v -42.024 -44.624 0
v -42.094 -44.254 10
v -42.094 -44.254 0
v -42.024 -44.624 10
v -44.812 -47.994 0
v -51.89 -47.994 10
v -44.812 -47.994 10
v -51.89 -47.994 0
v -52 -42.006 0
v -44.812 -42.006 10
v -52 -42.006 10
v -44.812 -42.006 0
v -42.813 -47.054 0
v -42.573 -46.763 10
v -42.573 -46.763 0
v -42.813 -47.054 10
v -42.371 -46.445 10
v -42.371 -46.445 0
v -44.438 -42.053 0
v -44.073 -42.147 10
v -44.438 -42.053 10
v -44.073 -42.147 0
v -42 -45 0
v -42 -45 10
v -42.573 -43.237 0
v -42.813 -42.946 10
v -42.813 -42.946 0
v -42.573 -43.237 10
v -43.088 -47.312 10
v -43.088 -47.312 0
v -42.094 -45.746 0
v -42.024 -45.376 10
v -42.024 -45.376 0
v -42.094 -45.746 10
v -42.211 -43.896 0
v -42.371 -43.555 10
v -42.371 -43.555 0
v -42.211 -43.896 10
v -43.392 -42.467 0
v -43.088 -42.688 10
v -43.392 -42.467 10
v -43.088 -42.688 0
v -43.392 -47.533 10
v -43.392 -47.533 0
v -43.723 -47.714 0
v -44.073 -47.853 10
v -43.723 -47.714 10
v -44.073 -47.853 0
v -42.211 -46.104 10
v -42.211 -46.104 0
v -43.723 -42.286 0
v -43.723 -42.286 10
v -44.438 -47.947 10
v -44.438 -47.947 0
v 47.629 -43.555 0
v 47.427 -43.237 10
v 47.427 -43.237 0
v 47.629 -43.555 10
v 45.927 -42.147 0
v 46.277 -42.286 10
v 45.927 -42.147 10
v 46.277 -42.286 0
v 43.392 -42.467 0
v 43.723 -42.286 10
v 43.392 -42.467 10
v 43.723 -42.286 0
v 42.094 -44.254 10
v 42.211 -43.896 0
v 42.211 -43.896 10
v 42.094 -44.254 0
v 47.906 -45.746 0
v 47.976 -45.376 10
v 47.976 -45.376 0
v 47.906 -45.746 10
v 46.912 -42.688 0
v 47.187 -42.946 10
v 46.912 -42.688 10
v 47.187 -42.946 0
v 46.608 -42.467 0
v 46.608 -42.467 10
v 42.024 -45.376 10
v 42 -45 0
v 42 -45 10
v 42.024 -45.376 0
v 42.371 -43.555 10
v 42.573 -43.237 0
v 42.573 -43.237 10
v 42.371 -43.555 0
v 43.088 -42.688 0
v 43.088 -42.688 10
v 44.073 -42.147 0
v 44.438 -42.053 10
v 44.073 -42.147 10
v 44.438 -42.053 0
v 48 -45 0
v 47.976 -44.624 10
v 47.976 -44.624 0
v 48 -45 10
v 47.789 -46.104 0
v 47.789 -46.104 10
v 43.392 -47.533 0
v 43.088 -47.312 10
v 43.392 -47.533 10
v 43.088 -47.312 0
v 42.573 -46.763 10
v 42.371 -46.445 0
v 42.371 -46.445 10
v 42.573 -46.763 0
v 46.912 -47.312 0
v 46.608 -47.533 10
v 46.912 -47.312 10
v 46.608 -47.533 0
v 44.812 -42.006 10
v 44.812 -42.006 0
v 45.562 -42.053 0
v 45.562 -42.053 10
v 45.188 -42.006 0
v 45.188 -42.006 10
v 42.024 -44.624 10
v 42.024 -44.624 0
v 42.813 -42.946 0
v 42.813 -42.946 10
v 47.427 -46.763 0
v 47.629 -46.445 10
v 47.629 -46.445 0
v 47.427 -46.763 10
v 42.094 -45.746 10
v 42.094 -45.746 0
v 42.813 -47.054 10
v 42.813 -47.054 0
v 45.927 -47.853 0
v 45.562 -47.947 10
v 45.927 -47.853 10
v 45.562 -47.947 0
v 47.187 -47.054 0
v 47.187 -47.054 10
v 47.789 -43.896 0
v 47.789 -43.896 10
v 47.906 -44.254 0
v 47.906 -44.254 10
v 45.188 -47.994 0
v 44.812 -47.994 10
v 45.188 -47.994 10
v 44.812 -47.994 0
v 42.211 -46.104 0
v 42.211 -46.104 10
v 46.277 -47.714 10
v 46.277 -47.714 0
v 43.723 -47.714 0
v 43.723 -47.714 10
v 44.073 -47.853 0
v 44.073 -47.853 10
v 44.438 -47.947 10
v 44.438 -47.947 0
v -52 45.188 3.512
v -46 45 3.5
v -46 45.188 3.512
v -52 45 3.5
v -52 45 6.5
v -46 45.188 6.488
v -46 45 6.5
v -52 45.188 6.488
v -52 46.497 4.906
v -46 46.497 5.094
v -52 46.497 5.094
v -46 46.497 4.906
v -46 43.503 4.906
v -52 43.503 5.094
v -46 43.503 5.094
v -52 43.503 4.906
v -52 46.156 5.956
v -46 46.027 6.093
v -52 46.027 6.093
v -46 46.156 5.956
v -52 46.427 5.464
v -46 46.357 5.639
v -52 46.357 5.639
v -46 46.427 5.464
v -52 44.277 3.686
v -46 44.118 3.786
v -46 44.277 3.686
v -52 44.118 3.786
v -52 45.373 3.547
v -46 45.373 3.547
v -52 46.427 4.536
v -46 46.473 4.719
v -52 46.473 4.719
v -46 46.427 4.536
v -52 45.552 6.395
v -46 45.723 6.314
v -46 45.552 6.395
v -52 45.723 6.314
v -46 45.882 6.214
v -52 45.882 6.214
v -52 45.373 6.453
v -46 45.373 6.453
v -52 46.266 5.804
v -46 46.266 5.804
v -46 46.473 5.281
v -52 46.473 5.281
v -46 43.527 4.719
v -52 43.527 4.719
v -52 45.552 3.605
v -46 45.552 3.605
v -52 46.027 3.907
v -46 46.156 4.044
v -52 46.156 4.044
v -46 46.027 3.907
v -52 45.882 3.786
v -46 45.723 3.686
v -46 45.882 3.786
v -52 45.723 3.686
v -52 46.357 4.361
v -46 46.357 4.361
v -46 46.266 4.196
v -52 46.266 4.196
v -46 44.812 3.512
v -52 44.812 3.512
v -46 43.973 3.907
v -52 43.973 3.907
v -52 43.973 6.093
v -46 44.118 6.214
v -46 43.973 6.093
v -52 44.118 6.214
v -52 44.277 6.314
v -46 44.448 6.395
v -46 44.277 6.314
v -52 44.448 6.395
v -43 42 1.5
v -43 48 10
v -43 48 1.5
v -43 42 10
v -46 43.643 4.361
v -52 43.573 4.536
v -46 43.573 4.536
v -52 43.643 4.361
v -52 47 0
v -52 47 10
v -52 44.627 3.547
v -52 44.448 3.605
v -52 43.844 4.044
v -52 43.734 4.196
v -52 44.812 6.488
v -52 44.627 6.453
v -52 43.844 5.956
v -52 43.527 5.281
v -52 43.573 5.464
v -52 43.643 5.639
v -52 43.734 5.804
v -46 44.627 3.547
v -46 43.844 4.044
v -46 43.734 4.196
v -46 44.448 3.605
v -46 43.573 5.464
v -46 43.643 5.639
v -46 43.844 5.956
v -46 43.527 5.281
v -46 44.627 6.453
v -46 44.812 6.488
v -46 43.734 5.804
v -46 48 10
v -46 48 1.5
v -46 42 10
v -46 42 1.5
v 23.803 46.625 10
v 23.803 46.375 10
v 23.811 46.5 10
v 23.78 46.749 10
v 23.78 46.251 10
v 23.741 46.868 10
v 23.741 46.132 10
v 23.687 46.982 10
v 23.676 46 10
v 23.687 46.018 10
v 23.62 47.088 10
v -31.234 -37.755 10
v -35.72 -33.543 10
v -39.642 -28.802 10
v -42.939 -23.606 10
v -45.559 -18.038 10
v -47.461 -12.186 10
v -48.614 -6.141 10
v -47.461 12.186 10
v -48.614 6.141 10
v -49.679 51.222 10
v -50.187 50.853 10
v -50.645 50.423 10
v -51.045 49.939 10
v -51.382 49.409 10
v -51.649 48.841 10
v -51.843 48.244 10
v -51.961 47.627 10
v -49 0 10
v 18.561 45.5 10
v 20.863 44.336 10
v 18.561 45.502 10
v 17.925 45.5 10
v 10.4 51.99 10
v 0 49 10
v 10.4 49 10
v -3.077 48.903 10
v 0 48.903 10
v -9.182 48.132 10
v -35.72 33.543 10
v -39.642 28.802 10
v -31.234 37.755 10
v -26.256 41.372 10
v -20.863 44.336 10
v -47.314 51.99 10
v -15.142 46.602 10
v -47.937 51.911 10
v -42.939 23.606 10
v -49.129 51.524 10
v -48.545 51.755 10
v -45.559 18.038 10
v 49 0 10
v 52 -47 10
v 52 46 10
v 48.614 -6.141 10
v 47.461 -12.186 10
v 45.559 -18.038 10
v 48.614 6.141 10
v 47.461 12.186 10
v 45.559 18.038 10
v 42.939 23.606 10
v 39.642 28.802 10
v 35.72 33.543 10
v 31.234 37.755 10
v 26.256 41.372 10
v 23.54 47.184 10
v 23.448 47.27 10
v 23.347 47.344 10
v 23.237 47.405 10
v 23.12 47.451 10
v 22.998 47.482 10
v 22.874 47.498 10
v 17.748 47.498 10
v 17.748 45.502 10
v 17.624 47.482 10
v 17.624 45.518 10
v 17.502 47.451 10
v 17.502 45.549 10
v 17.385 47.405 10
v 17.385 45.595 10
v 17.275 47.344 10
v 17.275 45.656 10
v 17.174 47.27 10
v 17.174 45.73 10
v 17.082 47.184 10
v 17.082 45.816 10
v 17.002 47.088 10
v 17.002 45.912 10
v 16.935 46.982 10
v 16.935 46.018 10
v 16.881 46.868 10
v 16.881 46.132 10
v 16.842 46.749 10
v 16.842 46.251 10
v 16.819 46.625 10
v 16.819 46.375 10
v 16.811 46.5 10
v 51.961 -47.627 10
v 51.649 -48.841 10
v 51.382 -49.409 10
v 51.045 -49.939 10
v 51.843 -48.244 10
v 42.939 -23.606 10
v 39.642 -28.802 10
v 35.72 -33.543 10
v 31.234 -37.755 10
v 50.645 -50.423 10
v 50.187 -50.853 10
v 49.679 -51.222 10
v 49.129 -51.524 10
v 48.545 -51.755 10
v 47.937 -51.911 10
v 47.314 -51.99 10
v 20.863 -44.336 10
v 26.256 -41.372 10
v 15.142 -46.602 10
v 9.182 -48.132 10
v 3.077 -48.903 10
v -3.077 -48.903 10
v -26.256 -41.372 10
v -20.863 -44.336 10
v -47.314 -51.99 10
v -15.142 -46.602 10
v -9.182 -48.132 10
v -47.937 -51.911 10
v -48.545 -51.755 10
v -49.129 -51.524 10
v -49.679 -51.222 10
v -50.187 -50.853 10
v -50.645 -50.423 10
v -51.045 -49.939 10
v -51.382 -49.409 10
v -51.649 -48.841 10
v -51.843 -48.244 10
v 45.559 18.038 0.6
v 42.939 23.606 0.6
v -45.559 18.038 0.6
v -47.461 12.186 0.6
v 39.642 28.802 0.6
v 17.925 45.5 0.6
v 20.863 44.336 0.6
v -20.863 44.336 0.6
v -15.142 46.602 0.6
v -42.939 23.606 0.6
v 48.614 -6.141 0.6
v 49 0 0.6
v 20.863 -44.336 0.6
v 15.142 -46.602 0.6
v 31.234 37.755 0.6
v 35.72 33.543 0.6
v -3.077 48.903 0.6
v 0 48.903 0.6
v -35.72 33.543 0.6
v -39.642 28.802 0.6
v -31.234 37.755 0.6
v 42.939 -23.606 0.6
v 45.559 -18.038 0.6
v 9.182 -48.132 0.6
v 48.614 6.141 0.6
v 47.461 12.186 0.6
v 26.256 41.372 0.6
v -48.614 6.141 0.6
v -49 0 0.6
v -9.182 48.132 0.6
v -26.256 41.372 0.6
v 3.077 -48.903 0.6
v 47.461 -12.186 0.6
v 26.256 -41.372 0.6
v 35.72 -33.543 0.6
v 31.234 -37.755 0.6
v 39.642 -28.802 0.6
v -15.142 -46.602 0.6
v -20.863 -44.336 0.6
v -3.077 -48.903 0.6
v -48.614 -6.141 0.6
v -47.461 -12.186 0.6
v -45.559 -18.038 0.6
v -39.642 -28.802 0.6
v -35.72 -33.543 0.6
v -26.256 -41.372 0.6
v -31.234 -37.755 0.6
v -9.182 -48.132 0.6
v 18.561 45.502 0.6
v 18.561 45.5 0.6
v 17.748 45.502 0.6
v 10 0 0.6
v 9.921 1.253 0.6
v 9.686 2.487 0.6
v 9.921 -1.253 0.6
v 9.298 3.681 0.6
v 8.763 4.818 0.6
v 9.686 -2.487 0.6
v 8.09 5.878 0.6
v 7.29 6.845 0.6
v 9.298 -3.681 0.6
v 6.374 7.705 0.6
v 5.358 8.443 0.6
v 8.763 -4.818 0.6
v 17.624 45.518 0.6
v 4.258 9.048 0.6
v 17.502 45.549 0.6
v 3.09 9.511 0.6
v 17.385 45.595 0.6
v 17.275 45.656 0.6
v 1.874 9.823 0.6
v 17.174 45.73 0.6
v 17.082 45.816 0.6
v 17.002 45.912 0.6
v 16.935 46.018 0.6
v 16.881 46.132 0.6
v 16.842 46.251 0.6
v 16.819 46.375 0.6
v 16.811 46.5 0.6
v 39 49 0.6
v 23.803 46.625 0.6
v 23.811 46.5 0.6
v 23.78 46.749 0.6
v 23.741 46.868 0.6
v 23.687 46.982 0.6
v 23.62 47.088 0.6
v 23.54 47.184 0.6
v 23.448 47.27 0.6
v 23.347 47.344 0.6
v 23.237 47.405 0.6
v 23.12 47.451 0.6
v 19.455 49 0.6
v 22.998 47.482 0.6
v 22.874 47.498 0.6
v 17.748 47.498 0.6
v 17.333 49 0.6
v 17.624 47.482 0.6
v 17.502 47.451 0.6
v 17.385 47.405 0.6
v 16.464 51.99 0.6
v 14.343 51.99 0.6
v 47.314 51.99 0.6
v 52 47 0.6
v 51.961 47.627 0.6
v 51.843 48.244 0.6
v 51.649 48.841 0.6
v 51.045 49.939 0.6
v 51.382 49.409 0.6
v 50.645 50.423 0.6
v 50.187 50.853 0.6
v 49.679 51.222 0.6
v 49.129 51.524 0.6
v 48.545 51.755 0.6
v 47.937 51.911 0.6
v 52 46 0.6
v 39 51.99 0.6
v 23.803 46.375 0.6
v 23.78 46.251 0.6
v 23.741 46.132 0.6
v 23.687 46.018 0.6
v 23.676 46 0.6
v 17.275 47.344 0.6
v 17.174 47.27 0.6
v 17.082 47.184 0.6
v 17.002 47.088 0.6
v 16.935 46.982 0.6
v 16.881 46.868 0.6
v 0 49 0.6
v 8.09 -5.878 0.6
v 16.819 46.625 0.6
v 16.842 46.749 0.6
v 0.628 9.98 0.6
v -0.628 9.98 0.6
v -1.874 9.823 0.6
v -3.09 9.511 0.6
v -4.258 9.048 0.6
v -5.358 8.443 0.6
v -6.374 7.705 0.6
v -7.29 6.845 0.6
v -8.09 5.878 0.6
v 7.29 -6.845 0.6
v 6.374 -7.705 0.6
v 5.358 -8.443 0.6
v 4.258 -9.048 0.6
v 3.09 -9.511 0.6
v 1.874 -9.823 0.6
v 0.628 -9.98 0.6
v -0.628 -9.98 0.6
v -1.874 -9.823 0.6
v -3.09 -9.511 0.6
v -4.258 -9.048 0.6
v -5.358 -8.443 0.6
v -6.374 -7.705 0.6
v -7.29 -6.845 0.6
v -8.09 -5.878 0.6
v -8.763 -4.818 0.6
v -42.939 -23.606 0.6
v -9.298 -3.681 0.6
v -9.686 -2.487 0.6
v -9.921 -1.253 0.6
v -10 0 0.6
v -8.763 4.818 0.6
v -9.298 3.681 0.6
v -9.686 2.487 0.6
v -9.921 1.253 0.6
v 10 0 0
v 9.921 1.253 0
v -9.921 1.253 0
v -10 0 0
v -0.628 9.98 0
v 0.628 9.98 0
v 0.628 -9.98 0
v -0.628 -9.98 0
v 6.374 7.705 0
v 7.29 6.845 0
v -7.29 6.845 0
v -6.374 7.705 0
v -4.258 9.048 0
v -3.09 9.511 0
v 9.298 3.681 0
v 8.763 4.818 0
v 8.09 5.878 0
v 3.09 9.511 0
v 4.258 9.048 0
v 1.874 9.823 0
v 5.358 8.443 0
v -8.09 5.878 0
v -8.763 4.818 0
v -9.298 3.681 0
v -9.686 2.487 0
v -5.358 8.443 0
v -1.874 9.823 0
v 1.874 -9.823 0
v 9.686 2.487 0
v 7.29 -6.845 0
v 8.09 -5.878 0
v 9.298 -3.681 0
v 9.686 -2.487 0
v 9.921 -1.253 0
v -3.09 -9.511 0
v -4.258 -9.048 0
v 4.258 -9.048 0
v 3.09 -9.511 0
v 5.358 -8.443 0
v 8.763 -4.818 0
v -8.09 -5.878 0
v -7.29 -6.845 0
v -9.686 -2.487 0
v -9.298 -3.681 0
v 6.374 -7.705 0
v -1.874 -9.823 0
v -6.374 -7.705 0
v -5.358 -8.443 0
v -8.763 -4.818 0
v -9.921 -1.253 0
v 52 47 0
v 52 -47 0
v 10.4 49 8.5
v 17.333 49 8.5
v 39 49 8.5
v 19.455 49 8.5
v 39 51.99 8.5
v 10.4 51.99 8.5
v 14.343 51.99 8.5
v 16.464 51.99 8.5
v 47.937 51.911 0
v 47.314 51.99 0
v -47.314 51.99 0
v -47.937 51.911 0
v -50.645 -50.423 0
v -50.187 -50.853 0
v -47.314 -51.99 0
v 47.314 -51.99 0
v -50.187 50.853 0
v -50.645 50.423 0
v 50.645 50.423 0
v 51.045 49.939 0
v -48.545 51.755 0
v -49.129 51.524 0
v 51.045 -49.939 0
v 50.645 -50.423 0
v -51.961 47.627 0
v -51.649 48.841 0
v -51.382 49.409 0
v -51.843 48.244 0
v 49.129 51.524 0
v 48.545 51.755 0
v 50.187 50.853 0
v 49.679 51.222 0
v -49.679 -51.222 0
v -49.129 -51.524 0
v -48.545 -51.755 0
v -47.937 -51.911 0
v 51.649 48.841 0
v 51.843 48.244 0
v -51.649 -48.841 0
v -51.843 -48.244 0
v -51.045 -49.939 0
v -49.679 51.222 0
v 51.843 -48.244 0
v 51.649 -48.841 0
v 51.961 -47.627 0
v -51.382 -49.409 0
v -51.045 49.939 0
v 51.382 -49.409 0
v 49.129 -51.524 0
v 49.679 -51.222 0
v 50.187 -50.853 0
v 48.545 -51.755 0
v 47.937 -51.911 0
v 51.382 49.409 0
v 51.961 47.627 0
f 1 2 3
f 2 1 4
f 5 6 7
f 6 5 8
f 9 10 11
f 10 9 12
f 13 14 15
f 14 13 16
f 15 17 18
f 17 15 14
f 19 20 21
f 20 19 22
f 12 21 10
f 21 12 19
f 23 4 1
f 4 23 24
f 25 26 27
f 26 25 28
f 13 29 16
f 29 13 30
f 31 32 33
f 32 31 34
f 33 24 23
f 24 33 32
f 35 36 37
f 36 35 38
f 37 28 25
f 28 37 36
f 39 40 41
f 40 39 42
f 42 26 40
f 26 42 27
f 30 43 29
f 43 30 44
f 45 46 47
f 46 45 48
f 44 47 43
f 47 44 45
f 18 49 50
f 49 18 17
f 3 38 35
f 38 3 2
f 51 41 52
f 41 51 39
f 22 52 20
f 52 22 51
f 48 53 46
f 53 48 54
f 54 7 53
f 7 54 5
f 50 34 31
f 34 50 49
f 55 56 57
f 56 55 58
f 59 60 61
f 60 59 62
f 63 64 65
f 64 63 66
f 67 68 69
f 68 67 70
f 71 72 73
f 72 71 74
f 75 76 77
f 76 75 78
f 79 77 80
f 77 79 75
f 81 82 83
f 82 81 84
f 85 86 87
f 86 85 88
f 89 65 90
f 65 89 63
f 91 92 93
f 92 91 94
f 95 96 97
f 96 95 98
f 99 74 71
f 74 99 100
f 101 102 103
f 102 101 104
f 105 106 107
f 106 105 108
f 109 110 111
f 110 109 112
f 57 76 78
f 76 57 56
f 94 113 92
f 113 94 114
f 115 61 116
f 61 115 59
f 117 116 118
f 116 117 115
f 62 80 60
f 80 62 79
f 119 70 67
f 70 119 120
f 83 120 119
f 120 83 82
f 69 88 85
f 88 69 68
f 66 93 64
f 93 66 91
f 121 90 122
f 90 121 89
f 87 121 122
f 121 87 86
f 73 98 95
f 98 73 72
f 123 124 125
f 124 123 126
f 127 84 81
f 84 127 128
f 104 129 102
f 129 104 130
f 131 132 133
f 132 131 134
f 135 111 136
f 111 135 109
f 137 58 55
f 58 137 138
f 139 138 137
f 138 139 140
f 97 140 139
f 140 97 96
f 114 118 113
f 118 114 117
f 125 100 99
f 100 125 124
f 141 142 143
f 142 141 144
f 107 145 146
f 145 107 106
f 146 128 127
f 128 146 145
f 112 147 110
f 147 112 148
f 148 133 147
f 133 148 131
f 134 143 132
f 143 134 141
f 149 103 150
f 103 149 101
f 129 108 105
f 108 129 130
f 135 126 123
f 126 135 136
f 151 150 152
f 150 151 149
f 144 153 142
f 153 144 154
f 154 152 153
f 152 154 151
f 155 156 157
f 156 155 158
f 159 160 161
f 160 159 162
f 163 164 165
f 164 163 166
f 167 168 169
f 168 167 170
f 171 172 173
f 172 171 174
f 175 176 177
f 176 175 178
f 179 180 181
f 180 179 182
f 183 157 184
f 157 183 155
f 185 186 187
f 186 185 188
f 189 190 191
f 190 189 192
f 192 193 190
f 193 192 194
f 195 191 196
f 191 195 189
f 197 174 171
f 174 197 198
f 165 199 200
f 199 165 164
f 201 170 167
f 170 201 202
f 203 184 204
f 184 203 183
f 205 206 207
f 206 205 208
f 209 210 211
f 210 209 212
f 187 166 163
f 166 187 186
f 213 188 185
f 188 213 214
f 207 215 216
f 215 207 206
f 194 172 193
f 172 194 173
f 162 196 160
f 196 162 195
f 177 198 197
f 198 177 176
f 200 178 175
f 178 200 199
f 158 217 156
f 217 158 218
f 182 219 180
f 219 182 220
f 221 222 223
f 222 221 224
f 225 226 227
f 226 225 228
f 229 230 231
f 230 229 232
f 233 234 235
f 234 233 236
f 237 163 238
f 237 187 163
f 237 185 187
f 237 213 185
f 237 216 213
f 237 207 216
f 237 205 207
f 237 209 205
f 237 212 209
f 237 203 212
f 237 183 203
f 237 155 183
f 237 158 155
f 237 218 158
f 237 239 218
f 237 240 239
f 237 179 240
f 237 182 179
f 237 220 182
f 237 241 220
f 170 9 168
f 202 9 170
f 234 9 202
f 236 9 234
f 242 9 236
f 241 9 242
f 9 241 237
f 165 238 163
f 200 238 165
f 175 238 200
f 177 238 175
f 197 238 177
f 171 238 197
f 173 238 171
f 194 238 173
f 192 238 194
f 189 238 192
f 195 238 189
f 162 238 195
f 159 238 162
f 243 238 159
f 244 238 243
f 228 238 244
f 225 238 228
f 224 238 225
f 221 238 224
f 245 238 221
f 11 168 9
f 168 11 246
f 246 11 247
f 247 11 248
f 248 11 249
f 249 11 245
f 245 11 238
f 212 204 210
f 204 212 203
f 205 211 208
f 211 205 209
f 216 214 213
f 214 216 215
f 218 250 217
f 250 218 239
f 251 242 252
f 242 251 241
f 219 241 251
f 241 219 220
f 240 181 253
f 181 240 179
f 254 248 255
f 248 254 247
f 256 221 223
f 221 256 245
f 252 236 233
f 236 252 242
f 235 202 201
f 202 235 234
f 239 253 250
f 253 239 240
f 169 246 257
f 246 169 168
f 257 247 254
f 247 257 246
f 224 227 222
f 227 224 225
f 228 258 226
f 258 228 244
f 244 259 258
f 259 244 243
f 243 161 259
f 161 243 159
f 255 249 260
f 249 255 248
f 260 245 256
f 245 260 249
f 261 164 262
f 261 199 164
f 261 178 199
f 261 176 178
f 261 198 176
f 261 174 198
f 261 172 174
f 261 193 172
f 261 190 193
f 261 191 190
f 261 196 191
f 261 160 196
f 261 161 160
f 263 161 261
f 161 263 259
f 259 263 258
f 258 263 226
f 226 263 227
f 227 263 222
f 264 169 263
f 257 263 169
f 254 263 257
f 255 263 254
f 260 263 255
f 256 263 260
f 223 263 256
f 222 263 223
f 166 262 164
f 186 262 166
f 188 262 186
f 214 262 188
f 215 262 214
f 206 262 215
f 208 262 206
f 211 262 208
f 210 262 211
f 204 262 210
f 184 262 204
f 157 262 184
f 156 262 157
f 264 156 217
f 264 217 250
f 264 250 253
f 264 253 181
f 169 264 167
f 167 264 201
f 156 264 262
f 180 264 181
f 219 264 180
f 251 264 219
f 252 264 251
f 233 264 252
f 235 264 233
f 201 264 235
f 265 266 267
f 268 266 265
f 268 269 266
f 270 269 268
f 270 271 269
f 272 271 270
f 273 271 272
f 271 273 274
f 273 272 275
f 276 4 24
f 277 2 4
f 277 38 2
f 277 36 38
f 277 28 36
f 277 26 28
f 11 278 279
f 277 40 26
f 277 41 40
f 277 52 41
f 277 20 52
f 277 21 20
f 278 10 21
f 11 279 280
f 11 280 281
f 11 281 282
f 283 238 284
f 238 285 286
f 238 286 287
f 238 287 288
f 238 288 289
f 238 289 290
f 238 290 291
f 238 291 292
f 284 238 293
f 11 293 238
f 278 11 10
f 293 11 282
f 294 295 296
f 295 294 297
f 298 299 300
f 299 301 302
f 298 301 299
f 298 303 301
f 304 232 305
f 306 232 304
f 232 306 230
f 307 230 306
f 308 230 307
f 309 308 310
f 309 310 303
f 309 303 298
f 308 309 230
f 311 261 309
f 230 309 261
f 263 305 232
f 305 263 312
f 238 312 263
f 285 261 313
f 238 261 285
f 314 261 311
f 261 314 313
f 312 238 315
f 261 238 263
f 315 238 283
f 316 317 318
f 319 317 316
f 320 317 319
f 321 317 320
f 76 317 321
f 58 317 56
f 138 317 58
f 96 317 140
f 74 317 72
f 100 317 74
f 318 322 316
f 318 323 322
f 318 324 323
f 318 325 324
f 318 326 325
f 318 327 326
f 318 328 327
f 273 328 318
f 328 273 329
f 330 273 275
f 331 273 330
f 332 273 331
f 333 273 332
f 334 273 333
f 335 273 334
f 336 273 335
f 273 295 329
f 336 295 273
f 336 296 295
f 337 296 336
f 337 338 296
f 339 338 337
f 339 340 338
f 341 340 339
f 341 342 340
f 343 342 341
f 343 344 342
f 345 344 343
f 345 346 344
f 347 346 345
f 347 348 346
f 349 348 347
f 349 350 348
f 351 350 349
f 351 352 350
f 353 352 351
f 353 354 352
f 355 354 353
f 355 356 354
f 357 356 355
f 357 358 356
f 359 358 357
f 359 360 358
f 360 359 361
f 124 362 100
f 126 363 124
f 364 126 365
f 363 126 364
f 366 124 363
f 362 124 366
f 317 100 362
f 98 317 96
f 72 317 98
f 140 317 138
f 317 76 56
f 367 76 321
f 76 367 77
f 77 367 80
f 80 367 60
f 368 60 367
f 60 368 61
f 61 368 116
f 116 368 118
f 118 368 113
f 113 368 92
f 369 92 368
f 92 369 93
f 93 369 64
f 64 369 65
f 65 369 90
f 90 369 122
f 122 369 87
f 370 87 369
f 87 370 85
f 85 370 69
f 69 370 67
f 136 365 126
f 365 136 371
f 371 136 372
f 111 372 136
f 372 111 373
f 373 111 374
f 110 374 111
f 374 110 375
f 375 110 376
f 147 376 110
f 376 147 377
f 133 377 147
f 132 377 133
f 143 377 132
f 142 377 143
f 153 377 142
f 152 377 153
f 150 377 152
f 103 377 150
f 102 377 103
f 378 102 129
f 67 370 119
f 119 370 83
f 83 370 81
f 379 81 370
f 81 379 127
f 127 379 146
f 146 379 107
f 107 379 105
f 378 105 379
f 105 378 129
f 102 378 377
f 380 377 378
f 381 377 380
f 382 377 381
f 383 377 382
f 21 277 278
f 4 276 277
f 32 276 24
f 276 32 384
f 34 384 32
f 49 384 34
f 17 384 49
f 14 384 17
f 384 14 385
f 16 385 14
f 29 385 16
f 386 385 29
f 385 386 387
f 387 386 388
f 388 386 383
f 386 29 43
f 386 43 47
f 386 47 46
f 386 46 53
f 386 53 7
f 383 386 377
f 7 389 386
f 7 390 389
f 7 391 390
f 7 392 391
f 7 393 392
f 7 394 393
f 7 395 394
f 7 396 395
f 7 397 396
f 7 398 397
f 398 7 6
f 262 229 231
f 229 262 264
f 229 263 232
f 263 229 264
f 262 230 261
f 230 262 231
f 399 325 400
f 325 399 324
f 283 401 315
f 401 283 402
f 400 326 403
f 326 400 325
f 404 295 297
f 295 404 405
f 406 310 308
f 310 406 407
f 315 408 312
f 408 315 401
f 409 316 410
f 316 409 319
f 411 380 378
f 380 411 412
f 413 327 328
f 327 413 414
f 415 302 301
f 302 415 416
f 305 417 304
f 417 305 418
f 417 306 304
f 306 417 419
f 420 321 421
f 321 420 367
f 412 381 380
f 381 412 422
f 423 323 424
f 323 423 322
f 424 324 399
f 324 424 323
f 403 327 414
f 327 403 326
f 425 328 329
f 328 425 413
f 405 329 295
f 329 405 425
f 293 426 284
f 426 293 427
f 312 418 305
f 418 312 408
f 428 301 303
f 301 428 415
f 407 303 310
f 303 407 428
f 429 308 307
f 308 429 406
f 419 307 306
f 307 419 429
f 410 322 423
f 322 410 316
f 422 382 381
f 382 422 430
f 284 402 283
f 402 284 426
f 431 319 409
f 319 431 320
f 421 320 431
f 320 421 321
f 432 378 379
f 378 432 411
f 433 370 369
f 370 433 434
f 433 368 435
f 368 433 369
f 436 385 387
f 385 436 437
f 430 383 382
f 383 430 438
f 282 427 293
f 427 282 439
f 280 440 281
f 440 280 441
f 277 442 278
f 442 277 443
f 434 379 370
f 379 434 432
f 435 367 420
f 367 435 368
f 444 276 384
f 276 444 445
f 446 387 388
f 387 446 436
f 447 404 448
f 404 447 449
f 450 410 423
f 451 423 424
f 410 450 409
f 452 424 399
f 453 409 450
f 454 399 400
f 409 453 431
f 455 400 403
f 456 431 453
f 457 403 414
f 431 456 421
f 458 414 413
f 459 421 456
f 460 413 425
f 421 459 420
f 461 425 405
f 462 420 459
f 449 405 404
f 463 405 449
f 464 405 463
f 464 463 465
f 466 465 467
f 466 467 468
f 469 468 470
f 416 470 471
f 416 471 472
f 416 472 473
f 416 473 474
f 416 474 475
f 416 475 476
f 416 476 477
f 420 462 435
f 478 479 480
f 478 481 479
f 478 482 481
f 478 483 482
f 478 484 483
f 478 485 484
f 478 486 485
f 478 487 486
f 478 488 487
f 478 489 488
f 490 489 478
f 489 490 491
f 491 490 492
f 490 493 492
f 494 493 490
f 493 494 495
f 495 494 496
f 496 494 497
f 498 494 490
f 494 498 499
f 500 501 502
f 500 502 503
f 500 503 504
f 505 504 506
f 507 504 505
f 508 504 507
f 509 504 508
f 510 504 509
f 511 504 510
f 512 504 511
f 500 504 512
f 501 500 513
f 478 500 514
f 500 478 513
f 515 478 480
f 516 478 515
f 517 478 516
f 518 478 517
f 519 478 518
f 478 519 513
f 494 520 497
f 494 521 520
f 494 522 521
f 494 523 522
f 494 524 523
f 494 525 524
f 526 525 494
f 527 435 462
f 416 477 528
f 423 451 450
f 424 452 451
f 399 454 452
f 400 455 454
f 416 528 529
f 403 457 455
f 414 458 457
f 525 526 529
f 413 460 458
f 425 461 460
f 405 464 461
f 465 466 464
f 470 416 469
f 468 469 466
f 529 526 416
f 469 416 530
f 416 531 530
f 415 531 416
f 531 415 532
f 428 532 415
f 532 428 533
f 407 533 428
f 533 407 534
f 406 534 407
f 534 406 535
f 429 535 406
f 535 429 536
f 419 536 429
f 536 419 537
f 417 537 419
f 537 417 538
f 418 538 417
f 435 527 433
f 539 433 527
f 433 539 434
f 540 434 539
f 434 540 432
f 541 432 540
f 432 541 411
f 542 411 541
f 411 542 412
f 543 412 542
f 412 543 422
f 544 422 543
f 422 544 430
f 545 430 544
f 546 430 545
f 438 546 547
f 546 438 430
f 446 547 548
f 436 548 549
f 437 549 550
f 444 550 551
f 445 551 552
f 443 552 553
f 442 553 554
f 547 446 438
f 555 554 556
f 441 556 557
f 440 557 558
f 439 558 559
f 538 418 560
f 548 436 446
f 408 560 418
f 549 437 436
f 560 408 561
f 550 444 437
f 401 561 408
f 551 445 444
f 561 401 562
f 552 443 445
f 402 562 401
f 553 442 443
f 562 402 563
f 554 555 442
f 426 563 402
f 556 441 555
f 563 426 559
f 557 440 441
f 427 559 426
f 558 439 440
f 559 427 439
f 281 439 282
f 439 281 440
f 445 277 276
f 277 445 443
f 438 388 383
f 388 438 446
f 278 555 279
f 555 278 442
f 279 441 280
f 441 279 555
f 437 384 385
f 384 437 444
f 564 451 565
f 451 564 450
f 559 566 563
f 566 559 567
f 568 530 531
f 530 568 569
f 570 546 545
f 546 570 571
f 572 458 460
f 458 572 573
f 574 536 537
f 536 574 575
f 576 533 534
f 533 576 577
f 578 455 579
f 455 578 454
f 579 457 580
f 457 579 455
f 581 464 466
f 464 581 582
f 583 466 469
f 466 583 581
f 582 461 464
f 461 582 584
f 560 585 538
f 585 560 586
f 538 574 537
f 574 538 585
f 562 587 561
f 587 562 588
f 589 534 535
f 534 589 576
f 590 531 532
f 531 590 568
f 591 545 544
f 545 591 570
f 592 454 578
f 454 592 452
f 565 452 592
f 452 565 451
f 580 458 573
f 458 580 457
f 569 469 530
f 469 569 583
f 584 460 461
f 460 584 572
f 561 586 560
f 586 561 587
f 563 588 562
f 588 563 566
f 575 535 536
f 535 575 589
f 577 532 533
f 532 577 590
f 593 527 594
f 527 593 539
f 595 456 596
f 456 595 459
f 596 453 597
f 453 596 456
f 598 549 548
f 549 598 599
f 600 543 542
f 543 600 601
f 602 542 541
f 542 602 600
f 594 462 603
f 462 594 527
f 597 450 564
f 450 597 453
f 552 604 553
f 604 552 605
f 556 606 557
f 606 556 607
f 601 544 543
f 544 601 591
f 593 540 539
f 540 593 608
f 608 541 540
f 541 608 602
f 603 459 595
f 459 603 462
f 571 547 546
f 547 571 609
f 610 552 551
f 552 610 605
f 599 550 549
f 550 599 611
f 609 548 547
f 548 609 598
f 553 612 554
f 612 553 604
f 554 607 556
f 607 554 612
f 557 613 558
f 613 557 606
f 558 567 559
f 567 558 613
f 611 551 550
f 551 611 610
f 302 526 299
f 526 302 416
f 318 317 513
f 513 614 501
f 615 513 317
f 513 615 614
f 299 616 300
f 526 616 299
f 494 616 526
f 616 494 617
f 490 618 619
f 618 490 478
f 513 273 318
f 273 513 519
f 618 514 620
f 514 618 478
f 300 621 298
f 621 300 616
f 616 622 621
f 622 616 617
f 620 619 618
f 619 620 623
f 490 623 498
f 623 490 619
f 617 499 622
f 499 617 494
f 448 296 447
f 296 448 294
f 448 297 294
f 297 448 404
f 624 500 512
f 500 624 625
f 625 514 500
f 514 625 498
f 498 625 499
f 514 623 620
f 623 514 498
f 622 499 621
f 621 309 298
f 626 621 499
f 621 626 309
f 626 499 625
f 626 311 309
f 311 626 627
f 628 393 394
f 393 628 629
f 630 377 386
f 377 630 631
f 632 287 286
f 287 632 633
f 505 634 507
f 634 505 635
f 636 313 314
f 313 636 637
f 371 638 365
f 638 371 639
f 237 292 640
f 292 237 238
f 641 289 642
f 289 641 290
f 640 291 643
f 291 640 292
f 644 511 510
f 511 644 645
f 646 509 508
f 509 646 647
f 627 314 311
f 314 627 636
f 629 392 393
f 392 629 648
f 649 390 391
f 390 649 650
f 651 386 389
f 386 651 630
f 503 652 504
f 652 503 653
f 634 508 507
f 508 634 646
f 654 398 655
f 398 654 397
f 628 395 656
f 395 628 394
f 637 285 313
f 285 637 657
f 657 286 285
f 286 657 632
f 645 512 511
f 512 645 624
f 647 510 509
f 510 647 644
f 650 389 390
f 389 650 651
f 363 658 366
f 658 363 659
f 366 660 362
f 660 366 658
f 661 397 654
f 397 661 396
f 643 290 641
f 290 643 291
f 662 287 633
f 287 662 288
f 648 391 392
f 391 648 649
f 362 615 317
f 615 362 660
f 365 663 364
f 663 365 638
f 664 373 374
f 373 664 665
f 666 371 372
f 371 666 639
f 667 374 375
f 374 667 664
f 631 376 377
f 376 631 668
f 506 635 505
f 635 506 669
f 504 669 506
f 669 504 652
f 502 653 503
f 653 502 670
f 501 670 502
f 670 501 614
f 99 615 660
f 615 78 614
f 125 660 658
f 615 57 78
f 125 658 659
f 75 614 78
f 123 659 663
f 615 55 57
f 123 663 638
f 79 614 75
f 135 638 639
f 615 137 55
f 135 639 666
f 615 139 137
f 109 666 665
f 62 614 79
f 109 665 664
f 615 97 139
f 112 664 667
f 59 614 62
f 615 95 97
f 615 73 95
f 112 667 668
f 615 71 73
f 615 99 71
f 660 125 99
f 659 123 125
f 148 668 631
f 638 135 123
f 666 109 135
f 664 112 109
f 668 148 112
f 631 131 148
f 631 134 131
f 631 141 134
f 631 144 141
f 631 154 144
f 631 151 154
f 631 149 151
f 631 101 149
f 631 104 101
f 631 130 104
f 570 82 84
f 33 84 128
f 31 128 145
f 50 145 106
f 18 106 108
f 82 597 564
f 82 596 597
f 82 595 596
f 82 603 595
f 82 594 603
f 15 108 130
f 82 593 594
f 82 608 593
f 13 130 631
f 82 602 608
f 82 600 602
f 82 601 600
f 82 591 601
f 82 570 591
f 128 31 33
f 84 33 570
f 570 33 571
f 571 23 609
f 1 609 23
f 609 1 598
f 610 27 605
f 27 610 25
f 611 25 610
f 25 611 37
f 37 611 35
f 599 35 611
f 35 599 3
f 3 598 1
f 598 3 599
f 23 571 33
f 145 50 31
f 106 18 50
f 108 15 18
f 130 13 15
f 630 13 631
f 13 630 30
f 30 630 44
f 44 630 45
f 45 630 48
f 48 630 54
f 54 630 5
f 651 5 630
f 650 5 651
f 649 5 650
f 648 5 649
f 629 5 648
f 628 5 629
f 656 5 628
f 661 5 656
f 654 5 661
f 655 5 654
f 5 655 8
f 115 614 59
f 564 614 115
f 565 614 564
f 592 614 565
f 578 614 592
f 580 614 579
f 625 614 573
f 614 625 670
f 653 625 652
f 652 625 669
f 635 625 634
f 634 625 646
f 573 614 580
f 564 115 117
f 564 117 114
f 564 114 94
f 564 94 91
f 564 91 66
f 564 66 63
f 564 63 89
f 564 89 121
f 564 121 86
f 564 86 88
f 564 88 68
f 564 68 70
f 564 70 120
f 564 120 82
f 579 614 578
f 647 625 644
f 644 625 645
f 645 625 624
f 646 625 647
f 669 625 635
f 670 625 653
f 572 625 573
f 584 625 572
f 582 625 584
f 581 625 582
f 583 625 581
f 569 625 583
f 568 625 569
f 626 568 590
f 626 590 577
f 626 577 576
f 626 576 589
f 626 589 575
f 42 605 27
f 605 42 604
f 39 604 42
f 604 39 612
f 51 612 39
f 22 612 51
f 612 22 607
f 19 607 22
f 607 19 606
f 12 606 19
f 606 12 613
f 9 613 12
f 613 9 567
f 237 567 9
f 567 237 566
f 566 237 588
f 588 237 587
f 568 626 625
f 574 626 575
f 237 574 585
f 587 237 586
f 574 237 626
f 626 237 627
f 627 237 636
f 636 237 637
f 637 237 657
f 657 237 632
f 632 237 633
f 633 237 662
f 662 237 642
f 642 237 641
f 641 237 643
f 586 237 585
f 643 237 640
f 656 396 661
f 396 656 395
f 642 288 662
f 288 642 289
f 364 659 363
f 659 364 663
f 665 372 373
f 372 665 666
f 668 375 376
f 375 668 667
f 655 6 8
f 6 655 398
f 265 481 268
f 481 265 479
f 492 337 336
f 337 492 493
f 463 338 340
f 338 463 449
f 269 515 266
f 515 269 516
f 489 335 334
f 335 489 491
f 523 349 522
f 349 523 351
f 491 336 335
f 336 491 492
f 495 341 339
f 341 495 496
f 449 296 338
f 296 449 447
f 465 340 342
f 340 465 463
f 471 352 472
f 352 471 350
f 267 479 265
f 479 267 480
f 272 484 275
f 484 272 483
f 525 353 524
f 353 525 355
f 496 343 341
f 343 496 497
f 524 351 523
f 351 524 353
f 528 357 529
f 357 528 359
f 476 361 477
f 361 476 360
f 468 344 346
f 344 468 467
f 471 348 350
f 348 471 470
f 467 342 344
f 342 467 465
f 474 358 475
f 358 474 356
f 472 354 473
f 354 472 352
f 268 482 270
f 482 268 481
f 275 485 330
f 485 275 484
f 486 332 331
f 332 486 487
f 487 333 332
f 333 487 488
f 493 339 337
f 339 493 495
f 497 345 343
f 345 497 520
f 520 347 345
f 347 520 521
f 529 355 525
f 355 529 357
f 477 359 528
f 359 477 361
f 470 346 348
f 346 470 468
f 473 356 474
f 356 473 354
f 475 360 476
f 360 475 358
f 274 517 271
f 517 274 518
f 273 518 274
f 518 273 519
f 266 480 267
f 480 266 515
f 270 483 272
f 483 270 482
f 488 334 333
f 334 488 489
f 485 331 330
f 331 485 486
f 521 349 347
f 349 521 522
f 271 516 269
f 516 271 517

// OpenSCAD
$fn = 50;


union() {
	difference() {
		union() {
			translate(v = [0, 0, 0]) {
				rotate(a = [0, 0, 0]) {
					hull() {
						translate(v = [-47.0000000000, 47.0000000000, 0]) {
							rotate(a = [0, 0, 0]) {
								translate(v = [0, 0, 0]) {
									rotate(a = [0, 0, 0]) {
										cylinder(h = 10, r = 5);
									}
								}
							}
						}
						translate(v = [47.0000000000, 47.0000000000, 0]) {
							rotate(a = [0, 0, 0]) {
								translate(v = [0, 0, 0]) {
									rotate(a = [0, 0, 0]) {
										cylinder(h = 10, r = 5);
									}
								}
							}
						}
						translate(v = [-47.0000000000, -47.0000000000, 0]) {
							rotate(a = [0, 0, 0]) {
								translate(v = [0, 0, 0]) {
									rotate(a = [0, 0, 0]) {
										cylinder(h = 10, r = 5);
									}
								}
							}
						}
						translate(v = [47.0000000000, -47.0000000000, 0]) {
							rotate(a = [0, 0, 0]) {
								translate(v = [0, 0, 0]) {
									rotate(a = [0, 0, 0]) {
										cylinder(h = 10, r = 5);
									}
								}
							}
						}
					}
				}
			}
		}
		union() {
			translate(v = [-52.5000000000, -45.0000000000, -125]) {
				rotate(a = [0, 0, 0]) {
					hull() {
						translate(v = [7.5000000000, 0, 0]) {
							rotate(a = [0, 0, 0]) {
								translate(v = [0, 0, 0]) {
									rotate(a = [0, 0, 0]) {
										cylinder(h = 250, r = 3.0000000000);
									}
								}
							}
						}
						translate(v = [-7.5000000000, 0, 0]) {
							rotate(a = [0, 0, 0]) {
								translate(v = [0, 0, 0]) {
									rotate(a = [0, 0, 0]) {
										cylinder(h = 250, r = 3.0000000000);
									}
								}
							}
						}
					}
				}
			}
			translate(v = [45.0000000000, -45.0000000000, -125.0000000000]) {
				rotate(a = [0, 0, 0]) {
					cylinder(h = 250, r = 3.0000000000);
				}
			}
			translate(v = [-52.0000000000, 45.0000000000, 5.0000000000]) {
				rotate(a = [0, 90, 0]) {
					cylinder(h = 9, r = 1.5000000000);
				}
			}
			translate(v = [-46.0000000000, 42.0000000000, 1.5000000000]) {
				rotate(a = [0, 0, 0]) {
					cube(size = [3, 6, 8.5000000000]);
				}
			}
			translate(v = [0, 0, 0.6000000000]) {
				rotate(a = [0, 0, 0]) {
					cylinder(h = 12.4000000000, r = 49.0000000000);
				}
			}
			translate(v = [0, 0, -5.0000000000]) {
				rotate(a = [0, 0, 0]) {
					cylinder(h = 10, r = 10.0000000000);
				}
			}
			translate(v = [0.0000000000, 46.0000000000, 0.6000000000]) {
				rotate(a = [0, 0, 0]) {
					cube(size = [52.0000000000, 3, 12.4000000000]);
				}
			}
			translate(v = [39.0000000000, 46.0000000000, 0.6000000000]) {
				rotate(a = [0, 0, 0]) {
					cube(size = [13.0000000000, 6, 12.4000000000]);
				}
			}
			translate(v = [10.4000000000, 46.0000000000, 8.5000000000]) {
				rotate(a = [0, 0, 0]) {
					cube(size = [41.6000000000, 6, 1.5000000000]);
				}
			}
			translate(v = [13.5833333333, 52.7500000000, 0.6000000000]) {
				rotate(a = [0, 0, -45]) {
					cube(size = [7.5000000000, 1.5000000000, 12.4000000000]);
				}
			}
			translate(v = [11.0610000000, 45.5000000000, 0.6000000000]) {
				rotate(a = [0, 0, 0]) {
					cube(size = [7.5000000000, 2, 9.4000000000]);
				}
			}
		}
	}
	union() {
		translate(v = [20.3110000000, 46.5000000000, 0]) {
			rotate(a = [0, 0, 0]) {
				hull() {
					translate(v = [2.5000000000, 0, 0]) {
						rotate(a = [0, 0, 0]) {
							translate(v = [0, 0, 0]) {
								rotate(a = [0, 0, 0]) {
									cylinder(h = 10, r = 1.0000000000);
								}
							}
						}
					}
					translate(v = [-2.5000000000, 0, 0]) {
						rotate(a = [0, 0, 0]) {
							translate(v = [0, 0, 0]) {
								rotate(a = [0, 0, 0]) {
									cylinder(h = 10, r = 1.0000000000);
								}
							}
						}
					}
				}
			}
		}
	}
}
